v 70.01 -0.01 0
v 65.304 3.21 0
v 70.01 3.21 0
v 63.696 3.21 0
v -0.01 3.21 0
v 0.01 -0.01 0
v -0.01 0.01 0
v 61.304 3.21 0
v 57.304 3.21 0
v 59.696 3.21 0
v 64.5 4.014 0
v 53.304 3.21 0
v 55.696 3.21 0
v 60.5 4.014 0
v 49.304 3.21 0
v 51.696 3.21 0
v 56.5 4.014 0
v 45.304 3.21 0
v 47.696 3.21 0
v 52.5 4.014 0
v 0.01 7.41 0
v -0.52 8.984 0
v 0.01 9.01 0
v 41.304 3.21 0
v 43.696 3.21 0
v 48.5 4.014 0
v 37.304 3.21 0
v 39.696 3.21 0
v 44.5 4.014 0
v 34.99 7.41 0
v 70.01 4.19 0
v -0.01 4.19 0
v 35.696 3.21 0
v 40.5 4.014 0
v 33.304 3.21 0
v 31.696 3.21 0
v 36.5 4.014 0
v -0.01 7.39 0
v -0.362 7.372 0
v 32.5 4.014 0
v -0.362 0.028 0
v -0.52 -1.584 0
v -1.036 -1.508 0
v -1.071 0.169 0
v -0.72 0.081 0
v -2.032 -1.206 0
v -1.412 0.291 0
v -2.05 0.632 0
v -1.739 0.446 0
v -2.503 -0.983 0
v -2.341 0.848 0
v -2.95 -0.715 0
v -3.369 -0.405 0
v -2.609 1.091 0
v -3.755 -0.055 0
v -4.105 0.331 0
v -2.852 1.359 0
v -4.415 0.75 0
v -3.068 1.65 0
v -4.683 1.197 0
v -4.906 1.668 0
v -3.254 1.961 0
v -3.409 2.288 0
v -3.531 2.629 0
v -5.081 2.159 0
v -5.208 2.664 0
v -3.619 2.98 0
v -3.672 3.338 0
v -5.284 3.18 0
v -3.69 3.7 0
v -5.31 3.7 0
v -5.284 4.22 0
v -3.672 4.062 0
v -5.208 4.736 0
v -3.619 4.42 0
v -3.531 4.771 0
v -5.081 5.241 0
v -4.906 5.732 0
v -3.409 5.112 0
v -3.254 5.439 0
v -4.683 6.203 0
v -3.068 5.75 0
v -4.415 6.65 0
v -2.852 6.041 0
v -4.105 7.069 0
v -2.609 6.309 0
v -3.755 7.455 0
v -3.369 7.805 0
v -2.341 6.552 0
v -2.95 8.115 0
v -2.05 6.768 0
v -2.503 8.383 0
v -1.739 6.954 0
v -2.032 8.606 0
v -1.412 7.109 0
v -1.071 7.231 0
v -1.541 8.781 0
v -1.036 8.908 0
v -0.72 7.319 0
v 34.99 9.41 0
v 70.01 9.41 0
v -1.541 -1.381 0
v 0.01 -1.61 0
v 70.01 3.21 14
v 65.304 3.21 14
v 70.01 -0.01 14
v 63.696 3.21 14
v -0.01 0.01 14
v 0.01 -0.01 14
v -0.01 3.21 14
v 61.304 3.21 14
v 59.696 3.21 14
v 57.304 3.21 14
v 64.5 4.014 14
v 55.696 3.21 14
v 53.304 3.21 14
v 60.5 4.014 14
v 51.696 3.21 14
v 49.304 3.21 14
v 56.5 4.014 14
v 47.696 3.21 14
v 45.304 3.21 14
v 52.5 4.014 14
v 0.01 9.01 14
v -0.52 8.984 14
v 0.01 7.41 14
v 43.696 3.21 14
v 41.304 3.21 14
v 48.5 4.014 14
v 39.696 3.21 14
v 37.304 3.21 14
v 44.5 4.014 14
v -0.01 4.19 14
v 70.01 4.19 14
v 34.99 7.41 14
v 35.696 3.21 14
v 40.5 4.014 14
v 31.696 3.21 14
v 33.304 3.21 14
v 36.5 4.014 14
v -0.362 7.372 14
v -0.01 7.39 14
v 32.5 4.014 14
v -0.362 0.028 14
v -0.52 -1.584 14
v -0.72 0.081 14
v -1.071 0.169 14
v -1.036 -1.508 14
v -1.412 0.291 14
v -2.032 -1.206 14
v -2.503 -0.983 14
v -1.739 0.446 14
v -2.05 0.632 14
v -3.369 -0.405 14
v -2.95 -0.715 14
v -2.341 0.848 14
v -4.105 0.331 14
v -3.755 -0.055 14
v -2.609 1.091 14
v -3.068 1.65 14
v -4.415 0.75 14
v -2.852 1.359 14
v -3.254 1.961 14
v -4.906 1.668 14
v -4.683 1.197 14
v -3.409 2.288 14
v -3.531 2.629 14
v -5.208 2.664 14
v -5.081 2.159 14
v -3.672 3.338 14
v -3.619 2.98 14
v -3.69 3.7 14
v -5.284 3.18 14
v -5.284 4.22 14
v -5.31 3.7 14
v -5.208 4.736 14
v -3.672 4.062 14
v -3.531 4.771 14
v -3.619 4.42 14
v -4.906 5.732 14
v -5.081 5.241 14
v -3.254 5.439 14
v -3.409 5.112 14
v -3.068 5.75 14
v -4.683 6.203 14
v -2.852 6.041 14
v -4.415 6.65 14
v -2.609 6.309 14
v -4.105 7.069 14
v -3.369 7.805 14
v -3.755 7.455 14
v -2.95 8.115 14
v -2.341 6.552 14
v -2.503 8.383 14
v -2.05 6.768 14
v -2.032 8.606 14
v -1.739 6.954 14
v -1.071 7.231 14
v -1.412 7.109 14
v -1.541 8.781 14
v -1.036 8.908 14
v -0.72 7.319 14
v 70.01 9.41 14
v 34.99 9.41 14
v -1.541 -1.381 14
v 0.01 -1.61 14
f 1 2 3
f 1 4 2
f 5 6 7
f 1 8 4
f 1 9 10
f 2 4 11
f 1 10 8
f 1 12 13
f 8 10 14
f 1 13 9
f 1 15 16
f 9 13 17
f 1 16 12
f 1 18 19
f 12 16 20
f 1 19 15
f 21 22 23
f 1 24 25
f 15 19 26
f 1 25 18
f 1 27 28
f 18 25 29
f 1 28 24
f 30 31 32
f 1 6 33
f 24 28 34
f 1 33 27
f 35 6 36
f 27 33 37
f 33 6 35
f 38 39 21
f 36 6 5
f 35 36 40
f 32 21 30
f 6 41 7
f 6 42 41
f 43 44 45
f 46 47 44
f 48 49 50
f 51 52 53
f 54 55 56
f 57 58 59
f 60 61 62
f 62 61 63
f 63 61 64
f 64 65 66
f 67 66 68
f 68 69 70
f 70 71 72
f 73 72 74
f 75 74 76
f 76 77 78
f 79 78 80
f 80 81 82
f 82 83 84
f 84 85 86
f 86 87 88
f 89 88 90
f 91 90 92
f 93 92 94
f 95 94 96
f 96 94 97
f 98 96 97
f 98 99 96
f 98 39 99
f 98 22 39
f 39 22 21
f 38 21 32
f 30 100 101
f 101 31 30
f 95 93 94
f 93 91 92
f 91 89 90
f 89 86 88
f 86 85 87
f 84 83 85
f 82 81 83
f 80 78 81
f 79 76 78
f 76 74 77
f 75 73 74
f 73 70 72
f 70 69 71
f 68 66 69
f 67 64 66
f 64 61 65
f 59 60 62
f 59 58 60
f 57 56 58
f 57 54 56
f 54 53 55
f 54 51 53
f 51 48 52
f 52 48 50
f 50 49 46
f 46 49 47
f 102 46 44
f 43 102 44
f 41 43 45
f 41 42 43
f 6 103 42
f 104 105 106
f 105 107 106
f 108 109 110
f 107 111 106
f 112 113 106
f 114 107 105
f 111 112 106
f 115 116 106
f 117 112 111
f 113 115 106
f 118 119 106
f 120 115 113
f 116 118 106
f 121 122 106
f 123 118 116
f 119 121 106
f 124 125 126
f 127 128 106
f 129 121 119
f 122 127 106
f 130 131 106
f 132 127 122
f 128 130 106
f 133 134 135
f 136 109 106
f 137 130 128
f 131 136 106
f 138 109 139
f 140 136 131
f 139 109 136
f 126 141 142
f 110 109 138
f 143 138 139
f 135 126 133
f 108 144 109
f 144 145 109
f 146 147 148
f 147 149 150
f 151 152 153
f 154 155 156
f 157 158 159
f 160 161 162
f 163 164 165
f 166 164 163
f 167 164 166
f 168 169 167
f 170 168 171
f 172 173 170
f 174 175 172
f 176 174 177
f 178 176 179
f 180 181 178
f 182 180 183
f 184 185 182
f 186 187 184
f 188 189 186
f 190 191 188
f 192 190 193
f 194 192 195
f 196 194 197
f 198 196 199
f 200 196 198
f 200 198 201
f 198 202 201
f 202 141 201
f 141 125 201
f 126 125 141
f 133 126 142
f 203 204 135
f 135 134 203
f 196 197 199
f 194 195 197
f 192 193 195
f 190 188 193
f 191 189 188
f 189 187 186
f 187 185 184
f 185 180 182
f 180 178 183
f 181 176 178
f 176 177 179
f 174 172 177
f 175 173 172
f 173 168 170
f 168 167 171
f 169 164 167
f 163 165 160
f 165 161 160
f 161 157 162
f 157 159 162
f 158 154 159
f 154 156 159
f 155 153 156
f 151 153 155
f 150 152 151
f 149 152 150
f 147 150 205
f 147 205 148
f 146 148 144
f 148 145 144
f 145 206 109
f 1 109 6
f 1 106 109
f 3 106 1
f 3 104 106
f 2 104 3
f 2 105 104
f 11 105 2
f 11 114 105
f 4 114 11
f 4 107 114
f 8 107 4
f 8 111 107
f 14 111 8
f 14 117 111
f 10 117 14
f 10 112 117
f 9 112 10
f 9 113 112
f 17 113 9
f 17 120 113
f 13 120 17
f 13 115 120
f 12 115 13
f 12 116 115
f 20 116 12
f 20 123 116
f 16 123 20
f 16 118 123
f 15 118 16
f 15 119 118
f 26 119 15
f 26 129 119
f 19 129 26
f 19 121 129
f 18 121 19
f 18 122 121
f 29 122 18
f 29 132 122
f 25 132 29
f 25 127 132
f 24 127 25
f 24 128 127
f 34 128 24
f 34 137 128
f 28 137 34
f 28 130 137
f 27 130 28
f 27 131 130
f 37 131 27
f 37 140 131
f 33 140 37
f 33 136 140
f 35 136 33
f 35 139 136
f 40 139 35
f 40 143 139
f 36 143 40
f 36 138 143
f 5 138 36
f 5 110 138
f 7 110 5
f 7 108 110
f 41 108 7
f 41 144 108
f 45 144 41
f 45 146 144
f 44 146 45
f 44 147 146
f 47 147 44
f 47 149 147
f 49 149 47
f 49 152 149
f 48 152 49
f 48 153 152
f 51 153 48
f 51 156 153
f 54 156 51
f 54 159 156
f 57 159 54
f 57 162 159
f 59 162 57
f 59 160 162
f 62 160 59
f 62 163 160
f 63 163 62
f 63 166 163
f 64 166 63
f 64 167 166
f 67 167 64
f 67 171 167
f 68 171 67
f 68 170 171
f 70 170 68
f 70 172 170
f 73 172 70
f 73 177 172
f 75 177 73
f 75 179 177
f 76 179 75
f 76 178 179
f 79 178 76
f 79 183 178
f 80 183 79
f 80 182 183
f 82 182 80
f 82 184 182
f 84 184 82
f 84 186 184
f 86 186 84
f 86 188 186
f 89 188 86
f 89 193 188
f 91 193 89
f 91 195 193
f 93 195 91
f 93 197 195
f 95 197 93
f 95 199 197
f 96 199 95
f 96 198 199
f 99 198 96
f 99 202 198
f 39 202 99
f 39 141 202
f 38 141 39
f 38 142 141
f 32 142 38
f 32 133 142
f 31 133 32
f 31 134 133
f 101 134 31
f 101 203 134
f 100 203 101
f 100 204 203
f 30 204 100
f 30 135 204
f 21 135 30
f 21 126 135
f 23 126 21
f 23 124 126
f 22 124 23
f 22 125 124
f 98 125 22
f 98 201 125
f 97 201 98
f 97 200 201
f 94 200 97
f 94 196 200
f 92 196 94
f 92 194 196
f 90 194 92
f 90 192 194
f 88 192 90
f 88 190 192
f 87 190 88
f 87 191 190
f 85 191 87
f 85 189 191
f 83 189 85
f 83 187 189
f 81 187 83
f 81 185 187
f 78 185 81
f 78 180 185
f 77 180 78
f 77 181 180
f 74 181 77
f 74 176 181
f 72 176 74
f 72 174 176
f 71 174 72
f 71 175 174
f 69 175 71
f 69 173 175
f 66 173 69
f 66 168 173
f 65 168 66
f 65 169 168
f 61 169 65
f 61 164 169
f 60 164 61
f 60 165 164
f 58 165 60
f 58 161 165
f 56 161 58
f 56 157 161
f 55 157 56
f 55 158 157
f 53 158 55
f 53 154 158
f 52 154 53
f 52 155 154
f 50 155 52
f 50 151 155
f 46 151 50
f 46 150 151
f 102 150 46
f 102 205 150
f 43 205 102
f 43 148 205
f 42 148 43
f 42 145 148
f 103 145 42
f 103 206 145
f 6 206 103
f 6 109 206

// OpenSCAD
// Print-flat spring bag / cable-bundle clip, one piece, no supports. Lay profile on bed (as modeled).
// Best in PETG or TPU-95A. Spine thickness controls spring force.
L   = 70;   // clip length
H   = 14;   // jaw width (print height)
jaw = 3.2;  // jaw thickness
spine = 1.6;
gap = 1.0;  // closed gap between jaws
$fn = 64;

module profile() {
    // lower jaw
    translate([0, 0]) square([L, jaw]);
    // upper jaw (closed with a small gap)
    translate([0, jaw + gap]) square([L, jaw]);
    // curved spine joining jaws at the left end
    r = (2 * jaw + gap) / 2 + spine;
    translate([0, jaw + gap / 2 + 0]) difference() {
        circle(r = r);
        circle(r = r - spine);
        translate([0, -r]) square([r + 1, 2 * r]);
    }
    // grip teeth on the lower jaw
    for (x = [L * 0.45 : 4 : L - 6])
        translate([x, jaw]) polygon([[0, -0.2], [2, -0.2], [1, 0.8]]);
    // thumb pad on the upper jaw
    translate([L * 0.5, 2 * jaw + gap]) square([L * 0.5, 2]);
}

linear_extrude(height = H) offset(delta = 0.01) profile();
